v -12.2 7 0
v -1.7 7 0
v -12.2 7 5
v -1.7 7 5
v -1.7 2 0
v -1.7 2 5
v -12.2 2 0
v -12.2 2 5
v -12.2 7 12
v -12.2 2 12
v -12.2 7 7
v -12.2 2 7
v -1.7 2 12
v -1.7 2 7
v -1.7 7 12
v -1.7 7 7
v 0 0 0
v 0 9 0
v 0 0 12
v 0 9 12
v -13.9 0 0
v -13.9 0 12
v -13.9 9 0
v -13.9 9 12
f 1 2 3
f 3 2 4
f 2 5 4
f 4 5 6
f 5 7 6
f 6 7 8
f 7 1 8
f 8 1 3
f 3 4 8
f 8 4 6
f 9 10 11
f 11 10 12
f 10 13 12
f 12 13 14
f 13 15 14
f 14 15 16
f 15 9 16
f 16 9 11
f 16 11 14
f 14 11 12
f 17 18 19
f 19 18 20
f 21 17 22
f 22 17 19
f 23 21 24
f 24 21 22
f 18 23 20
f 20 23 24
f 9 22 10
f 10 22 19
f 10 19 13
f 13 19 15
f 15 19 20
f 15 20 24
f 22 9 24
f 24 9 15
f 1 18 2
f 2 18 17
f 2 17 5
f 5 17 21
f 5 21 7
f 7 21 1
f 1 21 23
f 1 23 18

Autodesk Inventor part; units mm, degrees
ref_plane "YZ Plane" through (0, 0, 0) normal (1, 0, 0) x (0, 1, 0)
ref_plane "XZ Plane" through (0, 0, 0) normal (0, 1, 0) x (-1, 0, 0)
ref_plane "XY Plane" through (0, 0, 0) normal (0, 0, 1) x (1, 0, 0)
sketch "Sketch5" plane through (0, 0, 0) normal (0, 0, 1) x (1, 0, 0)
  line L0 (0, 0) -> (-13.9, 0)
  line L1 (-13.9, 0) -> (-13.9, 9)
  line L2 (-13.9, 9) -> (0, 9)
  line L3 (0, 9) -> (0, 0)
  line L4 (-2, 2) -> (-11.9, 2)
  line L5 (-11.9, 2) -> (-11.9, 7)
  line L6 (-11.9, 7) -> (-2, 7)
  line L7 (-2, 7) -> (-2, 2)
  dimension "d67" = 13.9
  dimension "d68" = 9
  dimension "d69" = 9.9
  dimension "d70" = 5
extrude "Extrusion8" add sketch "Sketch5" along normal blind 12 contours L0 L1 L2 L3 | L4 L5 L6 L7
sketch "Sketch6" plane through (0, 0, 12) normal (0, 0, 1) x (1, 0, 0)
  line L0 (-1.7, 2) -> (-12.2, 2)
  line L1 (-12.2, 2) -> (-12.2, 7)
  line L2 (-12.2, 7) -> (-1.7, 7)
  line L3 (-1.7, 7) -> (-1.7, 2)
  point P0 (0, 0)
  dimension "d85" = 10.5
  dimension "d86" = 5
sketch "Sketch7" plane through (0, 0, 0) normal (0, 0, -1) x (-1, 0, 0)
  line L0 (1.7, 2) -> (12.2, 2)
  line L1 (12.2, 2) -> (12.2, 7)
  line L2 (12.2, 7) -> (1.7, 7)
  line L3 (1.7, 7) -> (1.7, 2)
  point P0 (0, 0)
  dimension "d83" = 10.5
  dimension "d84" = 5
extrude "Extrusion12" cut sketch "Sketch6" against normal blind 5
extrude "Extrusion13" cut sketch "Sketch7" against normal blind 5
properties part number "Cube_Holder_SB_V1_(71mm)"
